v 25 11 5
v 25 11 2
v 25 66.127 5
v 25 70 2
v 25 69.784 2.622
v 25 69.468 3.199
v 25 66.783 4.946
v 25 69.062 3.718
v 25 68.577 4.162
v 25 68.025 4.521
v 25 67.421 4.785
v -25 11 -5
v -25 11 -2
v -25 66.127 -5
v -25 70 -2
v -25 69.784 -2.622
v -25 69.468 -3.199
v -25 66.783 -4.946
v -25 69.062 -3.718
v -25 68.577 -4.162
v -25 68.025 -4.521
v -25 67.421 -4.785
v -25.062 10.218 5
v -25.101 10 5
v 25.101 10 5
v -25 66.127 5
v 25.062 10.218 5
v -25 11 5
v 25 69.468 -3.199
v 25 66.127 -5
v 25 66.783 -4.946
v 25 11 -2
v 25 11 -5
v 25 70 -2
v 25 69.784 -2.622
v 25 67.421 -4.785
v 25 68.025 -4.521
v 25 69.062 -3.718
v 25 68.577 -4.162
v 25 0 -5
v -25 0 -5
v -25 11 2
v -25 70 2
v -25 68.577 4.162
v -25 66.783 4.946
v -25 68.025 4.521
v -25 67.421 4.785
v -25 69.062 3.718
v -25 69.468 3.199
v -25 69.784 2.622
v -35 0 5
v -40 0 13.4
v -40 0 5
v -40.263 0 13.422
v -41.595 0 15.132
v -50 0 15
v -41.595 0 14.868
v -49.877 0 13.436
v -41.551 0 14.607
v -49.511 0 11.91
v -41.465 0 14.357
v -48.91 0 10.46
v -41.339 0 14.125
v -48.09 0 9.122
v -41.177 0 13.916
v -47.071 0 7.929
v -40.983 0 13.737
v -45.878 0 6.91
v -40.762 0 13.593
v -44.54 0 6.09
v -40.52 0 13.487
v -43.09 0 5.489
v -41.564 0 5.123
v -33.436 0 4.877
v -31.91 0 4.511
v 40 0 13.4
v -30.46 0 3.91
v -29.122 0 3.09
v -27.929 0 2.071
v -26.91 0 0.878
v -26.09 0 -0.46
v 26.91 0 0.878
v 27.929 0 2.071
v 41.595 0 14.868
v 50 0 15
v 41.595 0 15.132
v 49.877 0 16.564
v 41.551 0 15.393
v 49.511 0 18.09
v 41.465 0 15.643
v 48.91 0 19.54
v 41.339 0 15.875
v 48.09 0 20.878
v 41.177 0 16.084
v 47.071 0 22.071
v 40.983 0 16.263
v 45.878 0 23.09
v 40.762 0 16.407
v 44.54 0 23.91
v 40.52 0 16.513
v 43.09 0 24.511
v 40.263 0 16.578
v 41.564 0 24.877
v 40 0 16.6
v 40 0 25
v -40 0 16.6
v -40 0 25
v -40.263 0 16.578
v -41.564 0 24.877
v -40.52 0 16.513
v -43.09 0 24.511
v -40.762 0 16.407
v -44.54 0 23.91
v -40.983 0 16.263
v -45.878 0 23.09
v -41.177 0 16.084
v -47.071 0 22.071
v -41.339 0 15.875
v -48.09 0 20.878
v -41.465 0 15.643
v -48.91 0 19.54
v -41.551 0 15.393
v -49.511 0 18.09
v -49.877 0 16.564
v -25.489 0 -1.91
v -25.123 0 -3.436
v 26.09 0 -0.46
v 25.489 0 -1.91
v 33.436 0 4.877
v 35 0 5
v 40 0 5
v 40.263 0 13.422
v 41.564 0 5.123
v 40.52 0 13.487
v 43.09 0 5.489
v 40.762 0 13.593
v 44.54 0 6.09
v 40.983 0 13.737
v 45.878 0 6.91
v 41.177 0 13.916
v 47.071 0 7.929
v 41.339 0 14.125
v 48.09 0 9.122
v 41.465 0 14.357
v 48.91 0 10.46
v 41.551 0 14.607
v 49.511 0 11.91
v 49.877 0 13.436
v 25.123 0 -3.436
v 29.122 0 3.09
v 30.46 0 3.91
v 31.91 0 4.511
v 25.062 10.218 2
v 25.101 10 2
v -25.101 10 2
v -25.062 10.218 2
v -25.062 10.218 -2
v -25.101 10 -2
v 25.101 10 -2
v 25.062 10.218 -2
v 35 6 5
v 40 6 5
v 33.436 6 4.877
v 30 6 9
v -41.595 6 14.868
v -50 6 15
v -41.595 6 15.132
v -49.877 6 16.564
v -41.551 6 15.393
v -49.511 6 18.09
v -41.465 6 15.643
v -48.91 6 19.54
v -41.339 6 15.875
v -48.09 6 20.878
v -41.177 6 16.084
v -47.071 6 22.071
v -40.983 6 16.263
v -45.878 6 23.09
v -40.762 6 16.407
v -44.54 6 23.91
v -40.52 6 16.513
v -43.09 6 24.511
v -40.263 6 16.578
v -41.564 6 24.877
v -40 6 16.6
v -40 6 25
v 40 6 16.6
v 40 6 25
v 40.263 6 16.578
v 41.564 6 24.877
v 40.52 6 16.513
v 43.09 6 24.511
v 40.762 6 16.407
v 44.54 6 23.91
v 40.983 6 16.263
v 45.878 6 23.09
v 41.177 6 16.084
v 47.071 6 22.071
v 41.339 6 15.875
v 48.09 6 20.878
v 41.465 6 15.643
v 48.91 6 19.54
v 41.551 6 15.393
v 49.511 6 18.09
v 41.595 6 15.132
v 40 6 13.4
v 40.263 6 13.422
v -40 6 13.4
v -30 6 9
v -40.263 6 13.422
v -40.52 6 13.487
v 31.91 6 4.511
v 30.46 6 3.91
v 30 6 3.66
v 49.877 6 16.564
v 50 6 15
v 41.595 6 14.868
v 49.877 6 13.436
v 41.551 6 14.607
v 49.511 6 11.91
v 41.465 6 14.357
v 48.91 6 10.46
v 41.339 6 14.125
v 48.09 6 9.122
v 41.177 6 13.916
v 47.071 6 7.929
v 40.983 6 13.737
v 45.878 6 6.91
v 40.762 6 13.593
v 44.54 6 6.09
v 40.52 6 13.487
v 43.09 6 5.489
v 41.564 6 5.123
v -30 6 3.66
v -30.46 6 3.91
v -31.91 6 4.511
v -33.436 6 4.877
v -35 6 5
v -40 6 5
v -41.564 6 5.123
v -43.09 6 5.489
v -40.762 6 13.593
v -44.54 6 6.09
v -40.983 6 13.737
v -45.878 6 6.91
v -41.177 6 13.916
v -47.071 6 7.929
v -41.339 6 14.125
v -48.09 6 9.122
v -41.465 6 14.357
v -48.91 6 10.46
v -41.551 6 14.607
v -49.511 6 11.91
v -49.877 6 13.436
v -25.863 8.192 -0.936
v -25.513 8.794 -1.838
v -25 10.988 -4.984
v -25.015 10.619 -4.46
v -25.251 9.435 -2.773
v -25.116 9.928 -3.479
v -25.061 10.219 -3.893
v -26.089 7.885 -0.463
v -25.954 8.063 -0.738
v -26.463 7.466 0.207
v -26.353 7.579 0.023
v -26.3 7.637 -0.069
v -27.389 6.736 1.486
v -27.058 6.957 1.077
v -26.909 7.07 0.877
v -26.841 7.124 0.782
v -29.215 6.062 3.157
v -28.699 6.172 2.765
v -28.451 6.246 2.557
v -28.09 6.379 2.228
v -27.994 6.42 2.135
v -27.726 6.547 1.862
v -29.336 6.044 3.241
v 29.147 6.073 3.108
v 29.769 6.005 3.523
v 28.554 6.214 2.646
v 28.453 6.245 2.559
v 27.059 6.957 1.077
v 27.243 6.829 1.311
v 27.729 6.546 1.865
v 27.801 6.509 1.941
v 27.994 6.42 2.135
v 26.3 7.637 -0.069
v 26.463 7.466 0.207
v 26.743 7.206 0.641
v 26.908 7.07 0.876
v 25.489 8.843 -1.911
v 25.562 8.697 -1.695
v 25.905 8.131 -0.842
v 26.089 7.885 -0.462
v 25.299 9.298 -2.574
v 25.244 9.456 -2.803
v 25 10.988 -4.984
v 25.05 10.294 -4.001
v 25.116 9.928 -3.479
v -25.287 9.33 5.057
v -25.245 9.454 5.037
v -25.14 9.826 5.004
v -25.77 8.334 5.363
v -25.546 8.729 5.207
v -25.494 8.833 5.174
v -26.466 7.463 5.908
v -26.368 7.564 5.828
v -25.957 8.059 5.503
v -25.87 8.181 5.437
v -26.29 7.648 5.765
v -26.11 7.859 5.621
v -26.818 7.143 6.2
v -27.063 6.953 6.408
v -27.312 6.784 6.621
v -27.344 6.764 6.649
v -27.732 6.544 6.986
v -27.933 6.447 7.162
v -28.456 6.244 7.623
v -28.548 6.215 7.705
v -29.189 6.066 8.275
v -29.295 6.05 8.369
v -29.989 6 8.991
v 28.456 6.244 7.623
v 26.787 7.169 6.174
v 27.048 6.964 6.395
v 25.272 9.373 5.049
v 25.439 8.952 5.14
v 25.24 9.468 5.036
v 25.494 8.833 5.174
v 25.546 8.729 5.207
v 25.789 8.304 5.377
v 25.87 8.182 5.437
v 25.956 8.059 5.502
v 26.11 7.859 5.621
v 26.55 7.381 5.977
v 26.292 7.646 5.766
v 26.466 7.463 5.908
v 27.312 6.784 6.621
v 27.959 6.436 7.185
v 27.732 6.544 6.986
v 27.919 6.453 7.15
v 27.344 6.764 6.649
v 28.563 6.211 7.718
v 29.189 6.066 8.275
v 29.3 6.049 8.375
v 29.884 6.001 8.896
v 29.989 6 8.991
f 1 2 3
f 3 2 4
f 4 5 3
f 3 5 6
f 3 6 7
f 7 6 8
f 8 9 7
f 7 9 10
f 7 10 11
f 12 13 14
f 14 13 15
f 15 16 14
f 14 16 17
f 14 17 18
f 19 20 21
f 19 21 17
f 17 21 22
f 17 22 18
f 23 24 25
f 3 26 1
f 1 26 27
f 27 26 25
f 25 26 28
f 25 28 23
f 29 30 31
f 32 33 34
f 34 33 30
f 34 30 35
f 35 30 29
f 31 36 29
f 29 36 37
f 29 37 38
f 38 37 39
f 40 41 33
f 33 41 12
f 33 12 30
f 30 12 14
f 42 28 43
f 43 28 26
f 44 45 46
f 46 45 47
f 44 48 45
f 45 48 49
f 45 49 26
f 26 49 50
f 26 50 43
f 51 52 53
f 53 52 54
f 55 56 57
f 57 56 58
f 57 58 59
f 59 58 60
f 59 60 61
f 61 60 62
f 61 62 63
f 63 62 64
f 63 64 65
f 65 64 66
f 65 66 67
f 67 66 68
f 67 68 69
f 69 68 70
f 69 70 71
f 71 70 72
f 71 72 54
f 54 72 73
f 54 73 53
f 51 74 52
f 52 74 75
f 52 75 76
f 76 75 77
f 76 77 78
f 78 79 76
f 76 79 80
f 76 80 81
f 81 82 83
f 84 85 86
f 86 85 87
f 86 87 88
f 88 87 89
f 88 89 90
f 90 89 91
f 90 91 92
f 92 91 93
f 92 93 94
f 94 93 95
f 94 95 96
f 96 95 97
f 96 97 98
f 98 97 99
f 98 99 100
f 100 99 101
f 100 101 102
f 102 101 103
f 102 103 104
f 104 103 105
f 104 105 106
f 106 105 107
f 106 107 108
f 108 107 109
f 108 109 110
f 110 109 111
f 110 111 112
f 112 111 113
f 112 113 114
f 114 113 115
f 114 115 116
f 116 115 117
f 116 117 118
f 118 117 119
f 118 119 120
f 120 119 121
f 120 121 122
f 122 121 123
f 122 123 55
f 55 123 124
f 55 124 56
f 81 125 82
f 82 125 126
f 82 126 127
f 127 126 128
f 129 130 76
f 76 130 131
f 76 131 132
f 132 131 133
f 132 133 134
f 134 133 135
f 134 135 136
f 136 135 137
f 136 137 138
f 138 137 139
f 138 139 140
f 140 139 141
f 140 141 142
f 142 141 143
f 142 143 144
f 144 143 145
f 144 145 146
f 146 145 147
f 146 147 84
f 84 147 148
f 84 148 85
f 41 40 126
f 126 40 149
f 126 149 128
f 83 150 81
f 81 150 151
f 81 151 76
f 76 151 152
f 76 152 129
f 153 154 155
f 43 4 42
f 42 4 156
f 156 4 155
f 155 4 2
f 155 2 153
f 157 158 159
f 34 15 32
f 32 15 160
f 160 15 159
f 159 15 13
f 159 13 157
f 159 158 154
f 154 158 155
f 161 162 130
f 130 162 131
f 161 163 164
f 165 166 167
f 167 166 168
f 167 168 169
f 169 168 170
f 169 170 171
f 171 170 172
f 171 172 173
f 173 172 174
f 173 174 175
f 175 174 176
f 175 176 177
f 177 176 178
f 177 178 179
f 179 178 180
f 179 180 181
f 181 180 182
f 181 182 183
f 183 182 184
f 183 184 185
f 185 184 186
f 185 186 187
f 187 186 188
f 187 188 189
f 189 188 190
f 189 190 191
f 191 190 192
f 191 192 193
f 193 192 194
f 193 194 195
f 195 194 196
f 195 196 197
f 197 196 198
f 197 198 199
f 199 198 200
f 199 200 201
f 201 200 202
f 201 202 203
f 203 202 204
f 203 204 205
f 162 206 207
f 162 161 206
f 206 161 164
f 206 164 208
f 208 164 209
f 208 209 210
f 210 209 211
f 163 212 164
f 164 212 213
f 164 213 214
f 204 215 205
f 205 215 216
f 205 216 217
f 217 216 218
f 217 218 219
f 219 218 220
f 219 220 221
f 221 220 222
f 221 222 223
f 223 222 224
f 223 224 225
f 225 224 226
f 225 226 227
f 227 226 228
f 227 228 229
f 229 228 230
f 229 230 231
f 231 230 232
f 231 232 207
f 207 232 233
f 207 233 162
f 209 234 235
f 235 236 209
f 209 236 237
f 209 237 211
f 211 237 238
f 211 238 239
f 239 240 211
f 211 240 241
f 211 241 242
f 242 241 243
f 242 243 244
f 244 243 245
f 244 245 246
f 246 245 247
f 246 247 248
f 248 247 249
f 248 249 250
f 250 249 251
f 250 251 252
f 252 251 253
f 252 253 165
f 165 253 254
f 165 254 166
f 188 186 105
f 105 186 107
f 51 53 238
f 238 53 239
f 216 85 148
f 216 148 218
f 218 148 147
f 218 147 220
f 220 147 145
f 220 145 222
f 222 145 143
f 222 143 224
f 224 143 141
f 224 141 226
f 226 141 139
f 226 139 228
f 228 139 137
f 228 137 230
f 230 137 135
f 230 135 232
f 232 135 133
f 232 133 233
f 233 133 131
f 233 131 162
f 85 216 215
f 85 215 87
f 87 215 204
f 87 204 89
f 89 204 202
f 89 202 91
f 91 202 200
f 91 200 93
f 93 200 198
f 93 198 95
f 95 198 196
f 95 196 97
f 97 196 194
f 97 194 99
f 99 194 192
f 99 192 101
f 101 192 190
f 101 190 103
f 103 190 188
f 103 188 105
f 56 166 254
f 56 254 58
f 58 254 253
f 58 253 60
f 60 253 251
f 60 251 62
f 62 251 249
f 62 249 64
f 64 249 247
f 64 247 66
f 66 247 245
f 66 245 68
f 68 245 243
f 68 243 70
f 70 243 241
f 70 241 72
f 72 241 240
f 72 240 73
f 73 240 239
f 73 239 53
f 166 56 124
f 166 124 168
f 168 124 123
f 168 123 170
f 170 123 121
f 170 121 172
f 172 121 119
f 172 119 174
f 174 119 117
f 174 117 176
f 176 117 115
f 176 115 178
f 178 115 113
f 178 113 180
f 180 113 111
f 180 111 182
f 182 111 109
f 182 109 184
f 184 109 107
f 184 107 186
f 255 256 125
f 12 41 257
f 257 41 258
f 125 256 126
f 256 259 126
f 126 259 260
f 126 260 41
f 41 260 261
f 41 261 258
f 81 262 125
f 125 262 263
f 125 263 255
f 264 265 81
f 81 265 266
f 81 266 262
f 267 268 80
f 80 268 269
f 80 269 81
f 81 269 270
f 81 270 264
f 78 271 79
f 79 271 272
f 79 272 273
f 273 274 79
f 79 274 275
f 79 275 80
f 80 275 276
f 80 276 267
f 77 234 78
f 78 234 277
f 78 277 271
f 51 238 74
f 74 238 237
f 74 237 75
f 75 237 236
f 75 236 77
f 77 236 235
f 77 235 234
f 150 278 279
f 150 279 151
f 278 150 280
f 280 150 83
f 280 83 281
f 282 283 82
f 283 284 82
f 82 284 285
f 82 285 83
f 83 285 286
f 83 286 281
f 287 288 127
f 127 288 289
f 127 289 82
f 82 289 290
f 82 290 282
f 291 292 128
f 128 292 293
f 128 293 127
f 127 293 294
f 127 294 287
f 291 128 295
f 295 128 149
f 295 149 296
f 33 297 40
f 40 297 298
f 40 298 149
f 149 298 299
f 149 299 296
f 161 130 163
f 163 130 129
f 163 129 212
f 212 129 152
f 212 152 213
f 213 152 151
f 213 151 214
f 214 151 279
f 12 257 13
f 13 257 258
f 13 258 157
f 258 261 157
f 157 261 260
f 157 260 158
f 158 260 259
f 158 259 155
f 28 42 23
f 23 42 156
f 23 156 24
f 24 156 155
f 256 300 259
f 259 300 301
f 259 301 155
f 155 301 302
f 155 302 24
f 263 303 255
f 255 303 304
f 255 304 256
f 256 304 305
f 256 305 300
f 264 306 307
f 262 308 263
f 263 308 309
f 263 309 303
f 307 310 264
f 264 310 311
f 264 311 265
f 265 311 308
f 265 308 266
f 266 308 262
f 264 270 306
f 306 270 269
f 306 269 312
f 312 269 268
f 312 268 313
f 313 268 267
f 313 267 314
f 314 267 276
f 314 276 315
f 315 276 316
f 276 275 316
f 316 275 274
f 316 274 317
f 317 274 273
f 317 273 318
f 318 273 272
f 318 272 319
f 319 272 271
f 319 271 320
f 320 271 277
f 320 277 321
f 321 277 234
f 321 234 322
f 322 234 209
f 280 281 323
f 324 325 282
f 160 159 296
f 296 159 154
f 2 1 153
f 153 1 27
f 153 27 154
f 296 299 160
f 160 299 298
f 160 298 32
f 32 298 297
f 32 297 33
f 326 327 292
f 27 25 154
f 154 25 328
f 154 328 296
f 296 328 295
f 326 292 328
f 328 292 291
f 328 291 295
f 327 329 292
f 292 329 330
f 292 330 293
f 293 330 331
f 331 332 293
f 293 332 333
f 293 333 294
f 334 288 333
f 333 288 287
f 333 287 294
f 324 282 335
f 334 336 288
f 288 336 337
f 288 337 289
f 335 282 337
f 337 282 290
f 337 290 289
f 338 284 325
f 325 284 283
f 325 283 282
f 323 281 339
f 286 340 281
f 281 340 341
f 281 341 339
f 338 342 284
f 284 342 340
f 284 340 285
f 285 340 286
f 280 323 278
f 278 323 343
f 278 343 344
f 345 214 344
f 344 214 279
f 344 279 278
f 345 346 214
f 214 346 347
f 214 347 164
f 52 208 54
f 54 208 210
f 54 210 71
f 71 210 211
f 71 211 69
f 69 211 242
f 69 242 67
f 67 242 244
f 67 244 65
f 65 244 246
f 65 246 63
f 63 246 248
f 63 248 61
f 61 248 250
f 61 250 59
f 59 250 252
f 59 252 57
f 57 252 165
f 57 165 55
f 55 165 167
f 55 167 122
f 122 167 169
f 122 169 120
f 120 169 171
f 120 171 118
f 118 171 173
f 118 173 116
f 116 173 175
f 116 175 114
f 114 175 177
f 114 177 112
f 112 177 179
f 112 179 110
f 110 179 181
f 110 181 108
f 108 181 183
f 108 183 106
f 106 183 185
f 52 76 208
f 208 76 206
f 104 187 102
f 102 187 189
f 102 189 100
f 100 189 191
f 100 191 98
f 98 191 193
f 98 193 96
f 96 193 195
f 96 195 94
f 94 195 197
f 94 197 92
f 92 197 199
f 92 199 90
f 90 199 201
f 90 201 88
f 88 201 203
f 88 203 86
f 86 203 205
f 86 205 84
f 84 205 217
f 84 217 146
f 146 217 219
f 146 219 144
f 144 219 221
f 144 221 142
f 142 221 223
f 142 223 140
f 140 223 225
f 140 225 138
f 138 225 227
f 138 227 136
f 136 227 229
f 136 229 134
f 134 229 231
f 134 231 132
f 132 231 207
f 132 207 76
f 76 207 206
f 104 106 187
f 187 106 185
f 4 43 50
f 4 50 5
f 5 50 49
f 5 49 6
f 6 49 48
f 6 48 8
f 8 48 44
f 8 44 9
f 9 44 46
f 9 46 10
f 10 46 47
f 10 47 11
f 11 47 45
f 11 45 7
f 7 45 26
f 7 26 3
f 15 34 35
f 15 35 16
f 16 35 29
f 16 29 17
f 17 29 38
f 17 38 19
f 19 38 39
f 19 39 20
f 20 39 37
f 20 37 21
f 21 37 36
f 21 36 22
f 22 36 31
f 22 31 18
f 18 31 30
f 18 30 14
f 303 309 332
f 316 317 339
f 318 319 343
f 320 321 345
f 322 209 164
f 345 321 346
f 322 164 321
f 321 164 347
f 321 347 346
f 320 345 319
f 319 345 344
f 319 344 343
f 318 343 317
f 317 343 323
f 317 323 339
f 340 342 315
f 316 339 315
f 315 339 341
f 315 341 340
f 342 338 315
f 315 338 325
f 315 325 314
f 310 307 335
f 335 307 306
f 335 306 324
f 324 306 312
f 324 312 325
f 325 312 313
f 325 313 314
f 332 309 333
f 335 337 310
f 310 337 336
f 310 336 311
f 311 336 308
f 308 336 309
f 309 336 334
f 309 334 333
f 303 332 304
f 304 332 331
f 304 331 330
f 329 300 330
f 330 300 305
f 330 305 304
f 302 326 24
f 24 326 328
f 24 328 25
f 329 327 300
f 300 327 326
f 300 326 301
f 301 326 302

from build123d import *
from build123d.topology import SkipClean

# Parameters (mm, degrees)
SKETCH1_W           = 50
SKETCH1_H           = 10
BOSS_EXTRUDE1_DEPTH = 70
SKETCH2_W           = 50
SKETCH2_H           = 4
CUT_EXTRUDE1_DEPTH  = 60
SKETCH3_W           = 100
SKETCH3_H           = 6
BOSS_EXTRUDE2_DEPTH = 20
FILLET1_R           = 10
FILLET2_R           = 10
FILLET3_R           = 5
CUT_EXTRUDE2_DEPTH  = 85.976467331
FILLET4_R           = 4
FILLET5_R           = 4


# Some blends are built 0.0001 mm under size
with BuildPart() as part:
    # Sketch1 → Boss-Extrude1 (new body)
    with BuildSketch(Plane(origin=(0, 0, 0), x_dir=(1, 0, 0), z_dir=(0, 1, 0))):
        Rectangle(SKETCH1_W, SKETCH1_H)
    extrude(amount=BOSS_EXTRUDE1_DEPTH)

    # Sketch2 → Cut-Extrude1 (cut)
    with BuildSketch(Plane(origin=(0, 70, 0), x_dir=(1, 0, 0), z_dir=(0, 1, 0))):
        Rectangle(SKETCH2_W, SKETCH2_H)
    extrude(amount=-CUT_EXTRUDE1_DEPTH, mode=Mode.SUBTRACT)

    # Sketch3 → Boss-Extrude2 (add)
    with BuildSketch(Plane.XY.offset(5)):
        with Locations((0, 3)):
            Rectangle(SKETCH3_W, SKETCH3_H)
    extrude(amount=BOSS_EXTRUDE2_DEPTH)

    # Fillet1
    fillet1_edges = [part.edges().sort_by_distance(p)[0] for p in [
        (50, 3, 25),
        (-50, 3, 25),
        (-50, 3, 5),
        (50, 3, 5),
    ]]
    fillet(fillet1_edges, radius=FILLET1_R - 0.0001)  # a hair under: the kernel refuses the full size

    # Fillet2
    fillet2_edges = [part.edges().sort_by_distance(p)[0] for p in [
        (-25, 3, 5),
        (25, 3, 5),
    ]]
    fillet(fillet2_edges, radius=FILLET2_R - 0.0001)  # a hair under: the kernel refuses the full size

    # Fillet3
    # the kernel refuses this fillet: 5 mm, written as the material it adds along each edge
    with BuildSketch(Plane(origin=(-25, 6, 5), x_dir=(-1, 0, 0), z_dir=(0, 0, -1))) as fillet3_piece_1_section:
        with BuildLine():
            CenterArc((FILLET3_R, FILLET3_R), FILLET3_R, 180, 90)
            Line((0, FILLET3_R), (0, 0))
            Line((0, 0), (FILLET3_R, 0))
        make_face()
    fillet3_piece_1 = extrude(amount=22.4999, mode=Mode.PRIVATE)
    fillet3_piece_1 = fillet3_piece_1 - Plane(origin=(-34.9999, 7.107412722, -4.9999), x_dir=(0, 0, 1), z_dir=(0, 1, 0)) * Cylinder(9.9999, 65, mode=Mode.PRIVATE)
    fillet3_piece_1 = split(fillet3_piece_1, bisect_by=Plane(origin=(-26.097313128, 7.107412722, -5), z_dir=(0, 0, 1)), keep=Keep.TOP, mode=Mode.PRIVATE)
    fillet3_piece_1 = split(fillet3_piece_1, bisect_by=Plane(origin=(-26.097313128, 10, 3.51164162), z_dir=(0, -1, 0)), keep=Keep.TOP, mode=Mode.PRIVATE)
    add(fillet3_piece_1)
    with BuildSketch(Plane(origin=(-25, 6, 5), x_dir=(-1, 0, 0), z_dir=(0, 0, -1))) as fillet3_piece_2_section:
        with BuildLine():
            CenterArc((FILLET3_R, FILLET3_R), FILLET3_R, 180, 90)
            Line((0, FILLET3_R), (0, 0))
            Line((0, 0), (FILLET3_R, 0))
        make_face()
    fillet3_piece_2 = extrude(amount=22.4999, mode=Mode.PRIVATE)
    fillet3_piece_2 = split(fillet3_piece_2, bisect_by=Plane(origin=(-25.030252938, 10, 3.5), z_dir=(0, 1, 0)), keep=Keep.TOP, mode=Mode.PRIVATE)
    fillet3_piece_2 = split(fillet3_piece_2, bisect_by=Plane(origin=(-25.030252938, 10.249492121, 2), z_dir=(0, 0, 1)), keep=Keep.TOP, mode=Mode.PRIVATE)
    add(fillet3_piece_2)
    with BuildSketch(Plane(origin=(-25, 6, 17.5), x_dir=(-1, 0, 0), z_dir=(0, 0, -1))) as fillet3_piece_3_section:
        with BuildLine():
            CenterArc((FILLET3_R, FILLET3_R), FILLET3_R, 180, 90)
            Line((0, FILLET3_R), (0, 0))
            Line((0, 0), (FILLET3_R, 0))
        make_face()
    fillet3_piece_3 = extrude(amount=34.9999, mode=Mode.PRIVATE)
    fillet3_piece_3 = fillet3_piece_3 - Plane(origin=(-34.9999, 10.264980521, -4.9999), x_dir=(0, 0, 1), z_dir=(0, 1, 0)) * Cylinder(9.9999, 90, mode=Mode.PRIVATE)
    fillet3_piece_3 = split(fillet3_piece_3, bisect_by=Plane(origin=(-25.027128676, 10.264980521, -5), z_dir=(0, 0, 1)), keep=Keep.TOP, mode=Mode.PRIVATE)
    fillet3_piece_3 = split(fillet3_piece_3, bisect_by=Plane(origin=(-25.027128676, 10.264980521, -2), z_dir=(0, 0, -1)), keep=Keep.TOP, mode=Mode.PRIVATE)
    add(fillet3_piece_3)
    with BuildSketch(Plane(origin=(25, 6, 5), x_dir=(1, 0, 0), z_dir=(0, 0, -1))) as fillet3_piece_4_section:
        with BuildLine():
            CenterArc((FILLET3_R, -FILLET3_R), FILLET3_R, 90, 90)
            Line((0, -FILLET3_R), (0, 0))
            Line((0, 0), (FILLET3_R, 0))
        make_face()
    fillet3_piece_4 = extrude(amount=22.4999, mode=Mode.PRIVATE)
    fillet3_piece_4 = fillet3_piece_4 - Plane(origin=(34.9999, 7.107412722, -4.9999), x_dir=(0, 0, 1), z_dir=(0, 1, 0)) * Cylinder(9.9999, 65, mode=Mode.PRIVATE)
    fillet3_piece_4 = split(fillet3_piece_4, bisect_by=Plane(origin=(26.097313128, 7.107412722, -5), z_dir=(0, 0, 1)), keep=Keep.TOP, mode=Mode.PRIVATE)
    fillet3_piece_4 = split(fillet3_piece_4, bisect_by=Plane(origin=(26.097313128, 10, 3.51164162), z_dir=(0, -1, 0)), keep=Keep.TOP, mode=Mode.PRIVATE)
    add(fillet3_piece_4)
    with BuildSketch(Plane(origin=(25, 6, 5), x_dir=(1, 0, 0), z_dir=(0, 0, -1))) as fillet3_piece_5_section:
        with BuildLine():
            CenterArc((FILLET3_R, -FILLET3_R), FILLET3_R, 90, 90)
            Line((0, -FILLET3_R), (0, 0))
            Line((0, 0), (FILLET3_R, 0))
        make_face()
    fillet3_piece_5 = extrude(amount=22.4999, mode=Mode.PRIVATE)
    fillet3_piece_5 = split(fillet3_piece_5, bisect_by=Plane(origin=(25.030252938, 10, 3.5), z_dir=(0, 1, 0)), keep=Keep.TOP, mode=Mode.PRIVATE)
    fillet3_piece_5 = split(fillet3_piece_5, bisect_by=Plane(origin=(25.030252938, 10.249492121, 2), z_dir=(0, 0, 1)), keep=Keep.TOP, mode=Mode.PRIVATE)
    add(fillet3_piece_5)
    with BuildSketch(Plane(origin=(25, 6, 17.5), x_dir=(1, 0, 0), z_dir=(0, 0, -1))) as fillet3_piece_6_section:
        with BuildLine():
            CenterArc((FILLET3_R, -FILLET3_R), FILLET3_R, 90, 90)
            Line((0, -FILLET3_R), (0, 0))
            Line((0, 0), (FILLET3_R, 0))
        make_face()
    fillet3_piece_6 = extrude(amount=34.9999, mode=Mode.PRIVATE)
    fillet3_piece_6 = fillet3_piece_6 - Plane(origin=(34.9999, 10.264980521, -4.9999), x_dir=(0, 0, 1), z_dir=(0, 1, 0)) * Cylinder(9.9999, 90, mode=Mode.PRIVATE)
    fillet3_piece_6 = split(fillet3_piece_6, bisect_by=Plane(origin=(25.027128676, 10.264980521, -5), z_dir=(0, 0, 1)), keep=Keep.TOP, mode=Mode.PRIVATE)
    fillet3_piece_6 = split(fillet3_piece_6, bisect_by=Plane(origin=(25.027128676, 10.264980521, -2), z_dir=(0, 0, -1)), keep=Keep.TOP, mode=Mode.PRIVATE)
    add(fillet3_piece_6)

    # Sketch4 → Cut-Extrude2 (cut, through all)
    with SkipClean():  # the faces are left unmerged after this step: merging them gives an invalid solid
        with BuildSketch(Plane(origin=(0, 6, 0), x_dir=(1, 0, 0), z_dir=(0, 1, 0))):
            with BuildLine():
                Line((-40, -13.4), (40, -13.4))
                ThreePointArc((40, -13.4), (41.6, -15), (40, -16.6))
                Line((40, -16.6), (-40, -16.6))
                ThreePointArc((-40, -16.6), (-41.6, -15), (-40, -13.4))
            make_face()
        extrude(amount=-CUT_EXTRUDE2_DEPTH, mode=Mode.SUBTRACT)
    add(part.part.scale(1), mode=Mode.REPLACE)  # the faces are merged on a copy

    # Fillet4
    # the kernel refuses this fillet: 4 mm, written as the material it takes off along each edge
    with BuildSketch(Plane(origin=(-34.682458366, 70, 5), x_dir=(0, -1, 0), z_dir=(1, 0, 0))) as fillet4_piece_1:
        with BuildLine():
            CenterArc((3.872983346, 4), FILLET4_R, 194.477512186, 75.522487814)
            Line((0, 3), (-0.077459667, 2.98))
            ThreePointArc((-0.077459667, 2.98), (-0.08, 1.5), (-0.08, 0))
            Line((-0.08, 0), (0, -0.08))
            Line((0, -0.08), (3.872983346, -0.08))
            Line((3.872983346, -0.08), (3.872983346, 0))
        make_face()
    extrude(amount=69.364916731, mode=Mode.SUBTRACT)
    with BuildSketch(Plane(origin=(34.682458366, 70, -5), x_dir=(0, 0, 1), z_dir=(-1, 0, 0))) as fillet4_piece_2:
        with BuildLine():
            CenterArc((4, -3.872983346), FILLET4_R, 104.477512186, 75.522487814)
            Line((0, -3.872983346), (-0.08, -3.872983346))
            Line((-0.08, -3.872983346), (-0.08, 0))
            Line((-0.08, 0), (0, 0.08))
            ThreePointArc((0, 0.08), (1.5, 0.08), (2.98, 0.077459667))
            Line((2.98, 0.077459667), (3, 0))
        make_face()
    extrude(amount=69.364916731, mode=Mode.SUBTRACT)

    # Fillet5
    fillet5_edges = [part.edges().sort_by_distance(p)[0] for p in [
        (0, 6, 5),
    ]]
    fillet(fillet5_edges, radius=FILLET5_R)


solid = part.part
